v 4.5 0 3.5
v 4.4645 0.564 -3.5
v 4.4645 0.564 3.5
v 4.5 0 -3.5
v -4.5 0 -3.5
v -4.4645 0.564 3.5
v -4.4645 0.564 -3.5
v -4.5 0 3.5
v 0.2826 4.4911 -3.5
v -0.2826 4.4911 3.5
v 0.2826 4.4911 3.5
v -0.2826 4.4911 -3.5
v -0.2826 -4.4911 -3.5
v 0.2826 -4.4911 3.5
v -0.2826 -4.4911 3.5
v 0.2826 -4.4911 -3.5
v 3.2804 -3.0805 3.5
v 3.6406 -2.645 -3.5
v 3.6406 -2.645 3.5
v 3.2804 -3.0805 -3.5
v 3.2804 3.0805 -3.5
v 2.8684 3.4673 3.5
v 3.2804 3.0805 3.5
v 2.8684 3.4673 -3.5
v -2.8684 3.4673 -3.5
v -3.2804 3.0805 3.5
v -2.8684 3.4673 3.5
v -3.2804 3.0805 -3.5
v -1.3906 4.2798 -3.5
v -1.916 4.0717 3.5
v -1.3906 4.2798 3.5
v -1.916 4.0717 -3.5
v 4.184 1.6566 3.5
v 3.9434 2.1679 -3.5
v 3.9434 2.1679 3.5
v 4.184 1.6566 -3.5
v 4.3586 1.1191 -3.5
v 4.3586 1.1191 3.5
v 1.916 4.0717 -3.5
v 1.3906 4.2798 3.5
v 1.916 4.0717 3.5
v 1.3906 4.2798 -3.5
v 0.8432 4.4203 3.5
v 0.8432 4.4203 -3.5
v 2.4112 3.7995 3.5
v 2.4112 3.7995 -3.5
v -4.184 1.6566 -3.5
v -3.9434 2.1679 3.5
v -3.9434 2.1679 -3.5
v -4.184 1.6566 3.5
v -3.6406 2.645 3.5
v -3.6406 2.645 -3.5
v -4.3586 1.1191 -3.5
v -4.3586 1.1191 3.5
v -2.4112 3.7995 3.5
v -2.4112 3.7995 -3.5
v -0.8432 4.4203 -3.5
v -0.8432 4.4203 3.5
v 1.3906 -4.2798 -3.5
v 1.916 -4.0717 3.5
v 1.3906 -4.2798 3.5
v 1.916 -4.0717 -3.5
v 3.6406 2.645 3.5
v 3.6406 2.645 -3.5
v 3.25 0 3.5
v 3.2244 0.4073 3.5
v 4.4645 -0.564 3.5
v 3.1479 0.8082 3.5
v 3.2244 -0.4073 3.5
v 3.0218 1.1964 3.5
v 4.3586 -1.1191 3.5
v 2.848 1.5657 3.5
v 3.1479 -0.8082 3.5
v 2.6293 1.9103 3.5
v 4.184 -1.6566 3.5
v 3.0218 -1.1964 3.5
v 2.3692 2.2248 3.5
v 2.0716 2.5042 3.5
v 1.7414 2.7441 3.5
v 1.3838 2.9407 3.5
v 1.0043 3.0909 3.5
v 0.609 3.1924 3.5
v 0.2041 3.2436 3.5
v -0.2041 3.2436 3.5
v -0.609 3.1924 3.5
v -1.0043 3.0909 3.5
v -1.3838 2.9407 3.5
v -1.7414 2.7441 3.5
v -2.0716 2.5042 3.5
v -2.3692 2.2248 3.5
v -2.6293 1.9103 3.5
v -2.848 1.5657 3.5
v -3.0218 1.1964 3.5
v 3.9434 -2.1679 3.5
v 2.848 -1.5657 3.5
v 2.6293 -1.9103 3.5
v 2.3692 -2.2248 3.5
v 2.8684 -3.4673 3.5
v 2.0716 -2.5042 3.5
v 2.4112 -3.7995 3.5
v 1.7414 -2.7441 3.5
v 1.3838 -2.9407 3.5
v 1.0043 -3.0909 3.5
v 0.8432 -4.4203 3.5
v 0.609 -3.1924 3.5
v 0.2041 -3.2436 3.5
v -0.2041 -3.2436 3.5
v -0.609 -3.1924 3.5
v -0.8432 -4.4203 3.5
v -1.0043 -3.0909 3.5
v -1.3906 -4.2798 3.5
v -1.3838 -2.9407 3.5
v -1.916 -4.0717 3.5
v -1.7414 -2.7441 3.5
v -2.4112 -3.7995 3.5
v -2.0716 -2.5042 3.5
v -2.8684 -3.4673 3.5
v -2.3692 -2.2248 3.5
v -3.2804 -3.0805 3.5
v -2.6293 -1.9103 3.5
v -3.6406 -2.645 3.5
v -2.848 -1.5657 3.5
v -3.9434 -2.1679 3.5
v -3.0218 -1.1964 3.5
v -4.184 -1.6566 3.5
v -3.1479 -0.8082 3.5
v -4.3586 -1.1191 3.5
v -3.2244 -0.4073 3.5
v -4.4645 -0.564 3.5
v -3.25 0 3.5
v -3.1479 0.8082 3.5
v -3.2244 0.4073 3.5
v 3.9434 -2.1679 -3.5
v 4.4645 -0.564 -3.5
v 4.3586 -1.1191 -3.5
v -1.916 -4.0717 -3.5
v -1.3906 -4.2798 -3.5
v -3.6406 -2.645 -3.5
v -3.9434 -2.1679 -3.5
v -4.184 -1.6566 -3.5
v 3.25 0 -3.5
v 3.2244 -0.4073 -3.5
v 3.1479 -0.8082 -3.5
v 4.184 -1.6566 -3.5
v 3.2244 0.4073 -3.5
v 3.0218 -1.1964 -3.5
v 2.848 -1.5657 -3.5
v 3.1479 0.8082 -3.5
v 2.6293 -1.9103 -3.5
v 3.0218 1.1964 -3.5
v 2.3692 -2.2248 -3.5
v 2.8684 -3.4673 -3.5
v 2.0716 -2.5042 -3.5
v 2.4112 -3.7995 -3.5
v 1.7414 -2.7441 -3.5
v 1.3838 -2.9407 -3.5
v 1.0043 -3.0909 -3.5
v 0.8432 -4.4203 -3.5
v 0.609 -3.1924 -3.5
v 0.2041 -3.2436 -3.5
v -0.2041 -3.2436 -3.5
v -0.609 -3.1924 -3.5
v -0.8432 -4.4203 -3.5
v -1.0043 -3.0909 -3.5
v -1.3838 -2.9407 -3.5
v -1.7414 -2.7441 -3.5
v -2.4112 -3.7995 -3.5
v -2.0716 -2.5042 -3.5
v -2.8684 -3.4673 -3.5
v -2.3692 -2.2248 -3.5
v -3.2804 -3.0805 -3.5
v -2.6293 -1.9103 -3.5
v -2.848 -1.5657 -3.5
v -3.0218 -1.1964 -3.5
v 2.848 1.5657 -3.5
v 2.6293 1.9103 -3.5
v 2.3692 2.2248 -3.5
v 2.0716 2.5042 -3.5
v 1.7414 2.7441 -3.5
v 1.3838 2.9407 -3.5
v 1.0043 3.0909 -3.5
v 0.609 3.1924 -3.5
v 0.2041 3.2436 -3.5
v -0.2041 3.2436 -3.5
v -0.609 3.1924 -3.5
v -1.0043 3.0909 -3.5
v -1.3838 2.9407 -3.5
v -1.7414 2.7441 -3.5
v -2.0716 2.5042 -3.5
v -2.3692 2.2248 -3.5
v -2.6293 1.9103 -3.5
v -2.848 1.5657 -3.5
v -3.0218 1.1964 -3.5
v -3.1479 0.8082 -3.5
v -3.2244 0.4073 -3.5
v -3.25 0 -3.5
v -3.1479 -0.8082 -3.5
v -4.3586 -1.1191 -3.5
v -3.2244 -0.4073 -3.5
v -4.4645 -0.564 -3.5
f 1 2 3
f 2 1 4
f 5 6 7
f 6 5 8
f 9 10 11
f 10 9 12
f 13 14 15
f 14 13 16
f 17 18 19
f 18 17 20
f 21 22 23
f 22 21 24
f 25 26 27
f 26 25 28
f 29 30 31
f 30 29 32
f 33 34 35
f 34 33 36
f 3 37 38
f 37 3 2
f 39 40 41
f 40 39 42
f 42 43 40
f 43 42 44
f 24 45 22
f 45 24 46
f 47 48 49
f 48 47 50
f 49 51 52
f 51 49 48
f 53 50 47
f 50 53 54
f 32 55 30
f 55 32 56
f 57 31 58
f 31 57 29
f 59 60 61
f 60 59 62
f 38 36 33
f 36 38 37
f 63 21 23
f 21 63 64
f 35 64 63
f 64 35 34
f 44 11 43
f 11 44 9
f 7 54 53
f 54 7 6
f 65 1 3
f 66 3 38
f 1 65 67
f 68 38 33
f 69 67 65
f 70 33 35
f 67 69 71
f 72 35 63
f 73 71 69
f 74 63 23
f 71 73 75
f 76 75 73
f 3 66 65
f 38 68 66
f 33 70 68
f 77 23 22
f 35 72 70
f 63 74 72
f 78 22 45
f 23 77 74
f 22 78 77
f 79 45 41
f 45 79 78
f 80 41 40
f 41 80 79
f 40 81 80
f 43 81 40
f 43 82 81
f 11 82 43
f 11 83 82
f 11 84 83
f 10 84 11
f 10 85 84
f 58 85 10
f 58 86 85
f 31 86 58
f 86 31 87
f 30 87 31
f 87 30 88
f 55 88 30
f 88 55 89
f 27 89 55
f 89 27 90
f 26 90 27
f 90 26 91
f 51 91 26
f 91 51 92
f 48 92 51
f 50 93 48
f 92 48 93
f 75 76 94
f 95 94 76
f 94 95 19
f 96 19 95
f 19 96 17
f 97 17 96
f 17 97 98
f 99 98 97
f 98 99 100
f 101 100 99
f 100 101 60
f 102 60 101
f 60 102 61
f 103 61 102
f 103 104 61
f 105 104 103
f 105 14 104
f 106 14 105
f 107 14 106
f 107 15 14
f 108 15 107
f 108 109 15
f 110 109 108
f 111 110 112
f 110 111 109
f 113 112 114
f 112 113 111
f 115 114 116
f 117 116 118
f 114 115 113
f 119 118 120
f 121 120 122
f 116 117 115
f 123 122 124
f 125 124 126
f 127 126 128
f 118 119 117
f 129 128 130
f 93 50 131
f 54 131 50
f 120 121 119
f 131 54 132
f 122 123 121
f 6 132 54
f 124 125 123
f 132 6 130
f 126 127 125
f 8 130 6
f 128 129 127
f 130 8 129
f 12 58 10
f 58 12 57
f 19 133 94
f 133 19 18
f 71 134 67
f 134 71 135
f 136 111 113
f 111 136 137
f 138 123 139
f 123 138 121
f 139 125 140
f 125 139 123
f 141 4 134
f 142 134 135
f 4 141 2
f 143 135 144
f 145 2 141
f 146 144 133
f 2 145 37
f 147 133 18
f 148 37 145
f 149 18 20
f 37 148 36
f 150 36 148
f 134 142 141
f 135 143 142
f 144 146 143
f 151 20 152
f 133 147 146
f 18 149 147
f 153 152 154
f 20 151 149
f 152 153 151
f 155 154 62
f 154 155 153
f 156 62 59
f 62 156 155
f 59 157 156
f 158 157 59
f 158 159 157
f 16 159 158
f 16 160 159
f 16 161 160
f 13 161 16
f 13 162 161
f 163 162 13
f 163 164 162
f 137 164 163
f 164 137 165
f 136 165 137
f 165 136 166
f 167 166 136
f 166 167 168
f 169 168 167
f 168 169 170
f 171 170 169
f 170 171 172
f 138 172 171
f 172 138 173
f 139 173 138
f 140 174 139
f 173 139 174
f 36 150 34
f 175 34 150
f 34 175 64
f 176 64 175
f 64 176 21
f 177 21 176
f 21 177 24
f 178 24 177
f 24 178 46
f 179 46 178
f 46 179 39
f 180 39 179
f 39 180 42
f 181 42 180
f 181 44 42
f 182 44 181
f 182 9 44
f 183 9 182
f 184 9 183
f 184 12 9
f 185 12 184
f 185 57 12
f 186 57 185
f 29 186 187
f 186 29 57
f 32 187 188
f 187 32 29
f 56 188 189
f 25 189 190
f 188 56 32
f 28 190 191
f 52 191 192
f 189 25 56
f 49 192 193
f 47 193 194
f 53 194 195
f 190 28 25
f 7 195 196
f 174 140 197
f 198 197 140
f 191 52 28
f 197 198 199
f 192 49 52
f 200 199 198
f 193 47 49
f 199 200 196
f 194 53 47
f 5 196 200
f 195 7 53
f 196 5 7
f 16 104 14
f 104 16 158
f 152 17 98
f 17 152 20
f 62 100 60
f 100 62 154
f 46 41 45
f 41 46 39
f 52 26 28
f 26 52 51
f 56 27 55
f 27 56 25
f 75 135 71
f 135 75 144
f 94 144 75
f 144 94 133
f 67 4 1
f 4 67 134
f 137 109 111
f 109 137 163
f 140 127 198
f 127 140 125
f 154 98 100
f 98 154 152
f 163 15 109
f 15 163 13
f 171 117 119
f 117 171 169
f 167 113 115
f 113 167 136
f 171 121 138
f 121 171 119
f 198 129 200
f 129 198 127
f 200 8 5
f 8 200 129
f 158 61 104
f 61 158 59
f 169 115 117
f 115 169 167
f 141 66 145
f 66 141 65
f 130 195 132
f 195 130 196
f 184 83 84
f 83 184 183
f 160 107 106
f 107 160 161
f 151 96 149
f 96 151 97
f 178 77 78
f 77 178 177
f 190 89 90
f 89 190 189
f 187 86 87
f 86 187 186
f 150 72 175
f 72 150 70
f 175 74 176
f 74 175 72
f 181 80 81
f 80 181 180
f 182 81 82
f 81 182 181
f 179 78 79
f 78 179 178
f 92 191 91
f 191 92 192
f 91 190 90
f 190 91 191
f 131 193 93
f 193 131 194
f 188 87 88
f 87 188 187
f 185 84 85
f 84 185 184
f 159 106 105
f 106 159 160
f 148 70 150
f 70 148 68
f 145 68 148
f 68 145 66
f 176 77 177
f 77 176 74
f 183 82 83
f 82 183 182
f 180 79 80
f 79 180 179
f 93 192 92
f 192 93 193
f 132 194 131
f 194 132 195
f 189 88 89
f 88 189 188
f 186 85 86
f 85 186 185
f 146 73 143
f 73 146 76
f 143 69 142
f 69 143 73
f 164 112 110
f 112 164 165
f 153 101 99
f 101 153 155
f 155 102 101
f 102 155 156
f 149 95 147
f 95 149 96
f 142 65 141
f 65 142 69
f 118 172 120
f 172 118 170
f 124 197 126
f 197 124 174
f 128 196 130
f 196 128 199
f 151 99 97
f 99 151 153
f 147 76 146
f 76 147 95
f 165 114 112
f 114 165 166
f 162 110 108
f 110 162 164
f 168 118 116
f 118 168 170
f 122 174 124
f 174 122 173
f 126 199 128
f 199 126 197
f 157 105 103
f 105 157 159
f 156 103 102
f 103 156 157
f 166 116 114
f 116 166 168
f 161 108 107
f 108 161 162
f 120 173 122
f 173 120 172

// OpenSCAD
$fn = 50;


difference() {
	union() {
		translate(v = [0, 0, -3.5000000000]) {
			cylinder(h = 7, r = 4.5000000000);
		}
	}
	union() {
		translate(v = [0, 0, -100.0000000000]) {
			cylinder(h = 200, r = 3.2500000000);
		}
	}
}
